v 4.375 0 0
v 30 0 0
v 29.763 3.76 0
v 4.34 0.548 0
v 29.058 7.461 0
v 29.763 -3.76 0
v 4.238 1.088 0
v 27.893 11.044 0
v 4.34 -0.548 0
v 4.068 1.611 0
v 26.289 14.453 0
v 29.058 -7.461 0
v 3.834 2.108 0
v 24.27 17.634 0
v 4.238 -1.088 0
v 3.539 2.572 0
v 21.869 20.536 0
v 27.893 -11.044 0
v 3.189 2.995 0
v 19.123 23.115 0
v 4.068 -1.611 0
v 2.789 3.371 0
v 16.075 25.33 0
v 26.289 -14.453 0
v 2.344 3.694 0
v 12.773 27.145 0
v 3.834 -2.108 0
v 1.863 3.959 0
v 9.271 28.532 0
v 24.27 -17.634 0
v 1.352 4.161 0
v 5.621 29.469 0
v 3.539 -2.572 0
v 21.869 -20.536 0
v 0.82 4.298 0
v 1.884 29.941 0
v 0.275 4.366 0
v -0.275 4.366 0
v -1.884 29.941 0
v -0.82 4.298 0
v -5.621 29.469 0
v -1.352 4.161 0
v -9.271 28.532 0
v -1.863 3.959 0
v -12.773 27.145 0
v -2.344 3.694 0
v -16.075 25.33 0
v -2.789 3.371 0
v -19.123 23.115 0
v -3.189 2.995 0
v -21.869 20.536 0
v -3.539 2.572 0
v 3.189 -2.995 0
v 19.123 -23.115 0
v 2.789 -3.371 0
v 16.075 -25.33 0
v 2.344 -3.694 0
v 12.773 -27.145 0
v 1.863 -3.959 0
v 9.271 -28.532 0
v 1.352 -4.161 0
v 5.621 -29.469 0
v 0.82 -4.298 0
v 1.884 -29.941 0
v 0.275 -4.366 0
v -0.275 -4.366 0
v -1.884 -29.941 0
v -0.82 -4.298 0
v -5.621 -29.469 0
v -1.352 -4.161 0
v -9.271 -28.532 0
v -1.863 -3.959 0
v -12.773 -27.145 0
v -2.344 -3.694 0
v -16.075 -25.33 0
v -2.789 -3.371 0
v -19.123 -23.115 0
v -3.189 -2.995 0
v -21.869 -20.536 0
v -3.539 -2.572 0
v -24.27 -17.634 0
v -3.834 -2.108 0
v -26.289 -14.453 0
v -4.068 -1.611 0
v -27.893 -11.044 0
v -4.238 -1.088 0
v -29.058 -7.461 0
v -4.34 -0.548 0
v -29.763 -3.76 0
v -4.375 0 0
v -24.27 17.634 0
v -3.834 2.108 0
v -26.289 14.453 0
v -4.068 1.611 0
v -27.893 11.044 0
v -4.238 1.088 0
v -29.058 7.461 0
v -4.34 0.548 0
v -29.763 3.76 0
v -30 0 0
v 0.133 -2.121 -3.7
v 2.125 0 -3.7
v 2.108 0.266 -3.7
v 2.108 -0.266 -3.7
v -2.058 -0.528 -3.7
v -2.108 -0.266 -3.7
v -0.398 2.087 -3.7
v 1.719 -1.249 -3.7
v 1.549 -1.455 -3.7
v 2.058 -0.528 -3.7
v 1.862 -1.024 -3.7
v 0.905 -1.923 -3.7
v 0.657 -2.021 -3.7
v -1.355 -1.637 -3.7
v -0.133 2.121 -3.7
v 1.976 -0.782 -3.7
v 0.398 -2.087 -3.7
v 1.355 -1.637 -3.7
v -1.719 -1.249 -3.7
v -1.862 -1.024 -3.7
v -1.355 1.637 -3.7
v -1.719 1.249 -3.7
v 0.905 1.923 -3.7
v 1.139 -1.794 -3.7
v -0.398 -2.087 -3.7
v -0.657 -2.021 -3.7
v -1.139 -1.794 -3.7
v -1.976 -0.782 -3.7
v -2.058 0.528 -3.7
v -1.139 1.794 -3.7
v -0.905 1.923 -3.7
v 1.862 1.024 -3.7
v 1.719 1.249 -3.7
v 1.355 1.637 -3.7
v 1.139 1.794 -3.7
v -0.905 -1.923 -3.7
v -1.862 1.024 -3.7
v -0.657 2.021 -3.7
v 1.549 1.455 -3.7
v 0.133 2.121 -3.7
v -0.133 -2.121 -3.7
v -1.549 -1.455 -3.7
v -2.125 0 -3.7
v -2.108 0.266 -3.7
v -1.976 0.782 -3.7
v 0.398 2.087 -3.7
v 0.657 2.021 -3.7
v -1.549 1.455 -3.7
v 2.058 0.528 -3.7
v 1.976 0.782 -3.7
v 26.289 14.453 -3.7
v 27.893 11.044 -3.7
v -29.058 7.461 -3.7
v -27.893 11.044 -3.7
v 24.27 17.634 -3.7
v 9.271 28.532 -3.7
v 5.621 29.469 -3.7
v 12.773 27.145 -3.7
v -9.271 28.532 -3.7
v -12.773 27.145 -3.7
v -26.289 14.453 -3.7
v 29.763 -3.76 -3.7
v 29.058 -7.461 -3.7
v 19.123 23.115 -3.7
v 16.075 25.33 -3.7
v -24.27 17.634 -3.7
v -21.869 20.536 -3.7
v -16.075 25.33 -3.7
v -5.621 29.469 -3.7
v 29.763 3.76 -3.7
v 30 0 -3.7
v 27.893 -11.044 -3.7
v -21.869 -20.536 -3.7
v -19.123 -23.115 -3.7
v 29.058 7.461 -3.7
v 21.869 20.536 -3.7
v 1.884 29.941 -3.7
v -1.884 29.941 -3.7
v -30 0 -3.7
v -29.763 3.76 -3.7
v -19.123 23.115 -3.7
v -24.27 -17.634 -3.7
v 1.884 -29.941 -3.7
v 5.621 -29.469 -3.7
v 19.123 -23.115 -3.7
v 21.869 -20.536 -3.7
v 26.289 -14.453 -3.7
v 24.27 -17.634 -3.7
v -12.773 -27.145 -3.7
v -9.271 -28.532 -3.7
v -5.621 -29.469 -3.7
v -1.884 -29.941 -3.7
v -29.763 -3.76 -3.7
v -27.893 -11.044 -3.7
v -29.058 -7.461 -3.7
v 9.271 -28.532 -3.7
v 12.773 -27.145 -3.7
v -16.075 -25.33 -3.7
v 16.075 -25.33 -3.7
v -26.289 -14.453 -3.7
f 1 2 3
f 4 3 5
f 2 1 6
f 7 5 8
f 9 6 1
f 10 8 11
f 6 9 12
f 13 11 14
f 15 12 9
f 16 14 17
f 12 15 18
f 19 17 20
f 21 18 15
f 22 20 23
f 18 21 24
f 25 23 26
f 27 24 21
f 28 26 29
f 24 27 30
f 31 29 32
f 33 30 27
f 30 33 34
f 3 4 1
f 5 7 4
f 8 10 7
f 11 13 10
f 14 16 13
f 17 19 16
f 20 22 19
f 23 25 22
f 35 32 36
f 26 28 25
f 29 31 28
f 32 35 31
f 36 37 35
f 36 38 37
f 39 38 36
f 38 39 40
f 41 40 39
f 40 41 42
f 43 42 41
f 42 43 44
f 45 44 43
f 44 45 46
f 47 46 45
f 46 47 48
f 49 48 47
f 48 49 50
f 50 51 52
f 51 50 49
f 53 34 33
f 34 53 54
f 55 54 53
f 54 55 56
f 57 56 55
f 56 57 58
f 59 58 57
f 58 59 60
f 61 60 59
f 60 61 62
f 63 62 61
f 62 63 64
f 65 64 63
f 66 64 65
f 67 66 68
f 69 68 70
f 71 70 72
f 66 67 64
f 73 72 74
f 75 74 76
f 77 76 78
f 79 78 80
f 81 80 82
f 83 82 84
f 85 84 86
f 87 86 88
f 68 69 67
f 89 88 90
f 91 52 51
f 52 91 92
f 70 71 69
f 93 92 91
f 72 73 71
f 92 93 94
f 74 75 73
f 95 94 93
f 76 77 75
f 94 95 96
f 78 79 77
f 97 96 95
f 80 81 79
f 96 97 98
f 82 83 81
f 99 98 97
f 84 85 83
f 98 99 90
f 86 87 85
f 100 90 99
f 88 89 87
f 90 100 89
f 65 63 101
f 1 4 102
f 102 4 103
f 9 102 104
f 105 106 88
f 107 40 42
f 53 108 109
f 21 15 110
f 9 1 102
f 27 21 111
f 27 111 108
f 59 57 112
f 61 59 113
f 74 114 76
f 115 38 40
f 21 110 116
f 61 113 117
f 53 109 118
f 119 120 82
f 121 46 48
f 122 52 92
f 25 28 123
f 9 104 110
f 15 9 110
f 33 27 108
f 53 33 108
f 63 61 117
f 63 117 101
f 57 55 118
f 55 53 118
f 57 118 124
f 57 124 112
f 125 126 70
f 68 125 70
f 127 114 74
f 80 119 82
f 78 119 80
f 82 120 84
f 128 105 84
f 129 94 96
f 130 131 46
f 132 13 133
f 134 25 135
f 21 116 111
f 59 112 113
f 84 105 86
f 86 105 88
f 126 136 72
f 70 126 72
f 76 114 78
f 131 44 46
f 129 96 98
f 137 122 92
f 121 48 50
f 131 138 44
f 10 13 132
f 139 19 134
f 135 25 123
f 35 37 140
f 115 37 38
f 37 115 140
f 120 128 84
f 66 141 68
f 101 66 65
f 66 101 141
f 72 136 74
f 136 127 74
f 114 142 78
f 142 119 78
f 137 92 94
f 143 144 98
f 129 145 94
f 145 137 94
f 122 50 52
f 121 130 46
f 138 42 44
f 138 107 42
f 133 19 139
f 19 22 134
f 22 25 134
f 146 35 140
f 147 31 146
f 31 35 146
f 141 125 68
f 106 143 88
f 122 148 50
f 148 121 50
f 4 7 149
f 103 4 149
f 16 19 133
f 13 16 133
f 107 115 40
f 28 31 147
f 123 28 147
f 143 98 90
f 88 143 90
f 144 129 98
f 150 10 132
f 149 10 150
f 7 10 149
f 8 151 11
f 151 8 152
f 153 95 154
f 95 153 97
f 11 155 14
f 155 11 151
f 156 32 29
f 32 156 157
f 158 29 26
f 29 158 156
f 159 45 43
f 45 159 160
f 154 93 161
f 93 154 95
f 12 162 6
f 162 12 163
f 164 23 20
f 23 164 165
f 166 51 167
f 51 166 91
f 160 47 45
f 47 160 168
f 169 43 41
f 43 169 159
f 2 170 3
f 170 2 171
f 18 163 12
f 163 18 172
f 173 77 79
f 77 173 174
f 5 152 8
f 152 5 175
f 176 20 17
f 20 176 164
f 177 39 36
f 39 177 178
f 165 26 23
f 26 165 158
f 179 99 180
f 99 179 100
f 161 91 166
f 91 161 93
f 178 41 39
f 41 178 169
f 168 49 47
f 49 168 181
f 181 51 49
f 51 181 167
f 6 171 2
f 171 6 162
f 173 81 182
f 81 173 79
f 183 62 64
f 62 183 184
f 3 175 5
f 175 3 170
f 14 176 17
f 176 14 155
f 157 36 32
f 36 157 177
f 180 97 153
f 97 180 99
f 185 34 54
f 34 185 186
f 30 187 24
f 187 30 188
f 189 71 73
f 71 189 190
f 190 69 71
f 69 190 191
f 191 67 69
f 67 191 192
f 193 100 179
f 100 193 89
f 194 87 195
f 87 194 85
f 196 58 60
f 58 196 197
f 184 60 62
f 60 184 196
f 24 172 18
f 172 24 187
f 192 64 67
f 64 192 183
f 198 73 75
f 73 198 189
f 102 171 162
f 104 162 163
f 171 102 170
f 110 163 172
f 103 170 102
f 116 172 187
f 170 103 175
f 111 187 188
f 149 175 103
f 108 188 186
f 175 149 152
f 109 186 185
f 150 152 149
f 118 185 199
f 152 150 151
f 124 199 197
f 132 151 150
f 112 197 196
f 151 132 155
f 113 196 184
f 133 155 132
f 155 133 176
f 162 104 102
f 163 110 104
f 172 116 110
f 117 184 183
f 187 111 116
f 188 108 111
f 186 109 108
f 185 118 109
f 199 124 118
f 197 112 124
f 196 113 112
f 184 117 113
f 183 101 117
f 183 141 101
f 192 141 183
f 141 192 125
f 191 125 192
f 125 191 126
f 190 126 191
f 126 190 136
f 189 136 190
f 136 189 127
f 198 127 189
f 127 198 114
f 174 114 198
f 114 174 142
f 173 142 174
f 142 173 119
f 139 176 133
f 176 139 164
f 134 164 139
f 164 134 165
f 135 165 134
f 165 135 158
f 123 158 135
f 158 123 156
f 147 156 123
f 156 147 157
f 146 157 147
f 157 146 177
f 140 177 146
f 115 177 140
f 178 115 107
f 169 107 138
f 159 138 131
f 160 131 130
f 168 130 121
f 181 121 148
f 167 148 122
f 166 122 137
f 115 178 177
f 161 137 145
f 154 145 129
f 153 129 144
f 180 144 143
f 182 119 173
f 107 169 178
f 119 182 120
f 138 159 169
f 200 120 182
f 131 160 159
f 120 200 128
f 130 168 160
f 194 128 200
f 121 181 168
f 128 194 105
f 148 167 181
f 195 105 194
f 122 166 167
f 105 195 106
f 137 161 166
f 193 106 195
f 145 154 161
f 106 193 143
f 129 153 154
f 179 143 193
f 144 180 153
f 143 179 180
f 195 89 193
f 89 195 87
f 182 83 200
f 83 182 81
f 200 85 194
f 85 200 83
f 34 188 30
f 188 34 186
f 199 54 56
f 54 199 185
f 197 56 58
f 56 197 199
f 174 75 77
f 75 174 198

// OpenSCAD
$fn = 50;


difference() {
	union() {
		translate(v = [0, 0, -3.7000000000]) {
			cylinder(h = 3.7000000000, r = 30.0000000000);
		}
	}
	union() {
		translate(v = [0, 0, 0]) {
			rotate(a = [0, 0, 0]) {
				difference() {
					union() {
						translate(v = [0, 0, -6.7000000000]) {
							cylinder(h = 6.7000000000, r = 2.0000000000);
						}
						translate(v = [0, 0, -3.7000000000]) {
							cylinder(h = 3.7000000000, r1 = 2.1250000000, r2 = 4.3750000000);
						}
						translate(v = [0, 0, -6.7000000000]) {
							cylinder(h = 6.7000000000, r = 2.1250000000);
						}
						translate(v = [0, 0, -6.7000000000]) {
							cylinder(h = 6.7000000000, r = 2.0000000000);
						}
					}
					union();
				}
			}
		}
	}
}
